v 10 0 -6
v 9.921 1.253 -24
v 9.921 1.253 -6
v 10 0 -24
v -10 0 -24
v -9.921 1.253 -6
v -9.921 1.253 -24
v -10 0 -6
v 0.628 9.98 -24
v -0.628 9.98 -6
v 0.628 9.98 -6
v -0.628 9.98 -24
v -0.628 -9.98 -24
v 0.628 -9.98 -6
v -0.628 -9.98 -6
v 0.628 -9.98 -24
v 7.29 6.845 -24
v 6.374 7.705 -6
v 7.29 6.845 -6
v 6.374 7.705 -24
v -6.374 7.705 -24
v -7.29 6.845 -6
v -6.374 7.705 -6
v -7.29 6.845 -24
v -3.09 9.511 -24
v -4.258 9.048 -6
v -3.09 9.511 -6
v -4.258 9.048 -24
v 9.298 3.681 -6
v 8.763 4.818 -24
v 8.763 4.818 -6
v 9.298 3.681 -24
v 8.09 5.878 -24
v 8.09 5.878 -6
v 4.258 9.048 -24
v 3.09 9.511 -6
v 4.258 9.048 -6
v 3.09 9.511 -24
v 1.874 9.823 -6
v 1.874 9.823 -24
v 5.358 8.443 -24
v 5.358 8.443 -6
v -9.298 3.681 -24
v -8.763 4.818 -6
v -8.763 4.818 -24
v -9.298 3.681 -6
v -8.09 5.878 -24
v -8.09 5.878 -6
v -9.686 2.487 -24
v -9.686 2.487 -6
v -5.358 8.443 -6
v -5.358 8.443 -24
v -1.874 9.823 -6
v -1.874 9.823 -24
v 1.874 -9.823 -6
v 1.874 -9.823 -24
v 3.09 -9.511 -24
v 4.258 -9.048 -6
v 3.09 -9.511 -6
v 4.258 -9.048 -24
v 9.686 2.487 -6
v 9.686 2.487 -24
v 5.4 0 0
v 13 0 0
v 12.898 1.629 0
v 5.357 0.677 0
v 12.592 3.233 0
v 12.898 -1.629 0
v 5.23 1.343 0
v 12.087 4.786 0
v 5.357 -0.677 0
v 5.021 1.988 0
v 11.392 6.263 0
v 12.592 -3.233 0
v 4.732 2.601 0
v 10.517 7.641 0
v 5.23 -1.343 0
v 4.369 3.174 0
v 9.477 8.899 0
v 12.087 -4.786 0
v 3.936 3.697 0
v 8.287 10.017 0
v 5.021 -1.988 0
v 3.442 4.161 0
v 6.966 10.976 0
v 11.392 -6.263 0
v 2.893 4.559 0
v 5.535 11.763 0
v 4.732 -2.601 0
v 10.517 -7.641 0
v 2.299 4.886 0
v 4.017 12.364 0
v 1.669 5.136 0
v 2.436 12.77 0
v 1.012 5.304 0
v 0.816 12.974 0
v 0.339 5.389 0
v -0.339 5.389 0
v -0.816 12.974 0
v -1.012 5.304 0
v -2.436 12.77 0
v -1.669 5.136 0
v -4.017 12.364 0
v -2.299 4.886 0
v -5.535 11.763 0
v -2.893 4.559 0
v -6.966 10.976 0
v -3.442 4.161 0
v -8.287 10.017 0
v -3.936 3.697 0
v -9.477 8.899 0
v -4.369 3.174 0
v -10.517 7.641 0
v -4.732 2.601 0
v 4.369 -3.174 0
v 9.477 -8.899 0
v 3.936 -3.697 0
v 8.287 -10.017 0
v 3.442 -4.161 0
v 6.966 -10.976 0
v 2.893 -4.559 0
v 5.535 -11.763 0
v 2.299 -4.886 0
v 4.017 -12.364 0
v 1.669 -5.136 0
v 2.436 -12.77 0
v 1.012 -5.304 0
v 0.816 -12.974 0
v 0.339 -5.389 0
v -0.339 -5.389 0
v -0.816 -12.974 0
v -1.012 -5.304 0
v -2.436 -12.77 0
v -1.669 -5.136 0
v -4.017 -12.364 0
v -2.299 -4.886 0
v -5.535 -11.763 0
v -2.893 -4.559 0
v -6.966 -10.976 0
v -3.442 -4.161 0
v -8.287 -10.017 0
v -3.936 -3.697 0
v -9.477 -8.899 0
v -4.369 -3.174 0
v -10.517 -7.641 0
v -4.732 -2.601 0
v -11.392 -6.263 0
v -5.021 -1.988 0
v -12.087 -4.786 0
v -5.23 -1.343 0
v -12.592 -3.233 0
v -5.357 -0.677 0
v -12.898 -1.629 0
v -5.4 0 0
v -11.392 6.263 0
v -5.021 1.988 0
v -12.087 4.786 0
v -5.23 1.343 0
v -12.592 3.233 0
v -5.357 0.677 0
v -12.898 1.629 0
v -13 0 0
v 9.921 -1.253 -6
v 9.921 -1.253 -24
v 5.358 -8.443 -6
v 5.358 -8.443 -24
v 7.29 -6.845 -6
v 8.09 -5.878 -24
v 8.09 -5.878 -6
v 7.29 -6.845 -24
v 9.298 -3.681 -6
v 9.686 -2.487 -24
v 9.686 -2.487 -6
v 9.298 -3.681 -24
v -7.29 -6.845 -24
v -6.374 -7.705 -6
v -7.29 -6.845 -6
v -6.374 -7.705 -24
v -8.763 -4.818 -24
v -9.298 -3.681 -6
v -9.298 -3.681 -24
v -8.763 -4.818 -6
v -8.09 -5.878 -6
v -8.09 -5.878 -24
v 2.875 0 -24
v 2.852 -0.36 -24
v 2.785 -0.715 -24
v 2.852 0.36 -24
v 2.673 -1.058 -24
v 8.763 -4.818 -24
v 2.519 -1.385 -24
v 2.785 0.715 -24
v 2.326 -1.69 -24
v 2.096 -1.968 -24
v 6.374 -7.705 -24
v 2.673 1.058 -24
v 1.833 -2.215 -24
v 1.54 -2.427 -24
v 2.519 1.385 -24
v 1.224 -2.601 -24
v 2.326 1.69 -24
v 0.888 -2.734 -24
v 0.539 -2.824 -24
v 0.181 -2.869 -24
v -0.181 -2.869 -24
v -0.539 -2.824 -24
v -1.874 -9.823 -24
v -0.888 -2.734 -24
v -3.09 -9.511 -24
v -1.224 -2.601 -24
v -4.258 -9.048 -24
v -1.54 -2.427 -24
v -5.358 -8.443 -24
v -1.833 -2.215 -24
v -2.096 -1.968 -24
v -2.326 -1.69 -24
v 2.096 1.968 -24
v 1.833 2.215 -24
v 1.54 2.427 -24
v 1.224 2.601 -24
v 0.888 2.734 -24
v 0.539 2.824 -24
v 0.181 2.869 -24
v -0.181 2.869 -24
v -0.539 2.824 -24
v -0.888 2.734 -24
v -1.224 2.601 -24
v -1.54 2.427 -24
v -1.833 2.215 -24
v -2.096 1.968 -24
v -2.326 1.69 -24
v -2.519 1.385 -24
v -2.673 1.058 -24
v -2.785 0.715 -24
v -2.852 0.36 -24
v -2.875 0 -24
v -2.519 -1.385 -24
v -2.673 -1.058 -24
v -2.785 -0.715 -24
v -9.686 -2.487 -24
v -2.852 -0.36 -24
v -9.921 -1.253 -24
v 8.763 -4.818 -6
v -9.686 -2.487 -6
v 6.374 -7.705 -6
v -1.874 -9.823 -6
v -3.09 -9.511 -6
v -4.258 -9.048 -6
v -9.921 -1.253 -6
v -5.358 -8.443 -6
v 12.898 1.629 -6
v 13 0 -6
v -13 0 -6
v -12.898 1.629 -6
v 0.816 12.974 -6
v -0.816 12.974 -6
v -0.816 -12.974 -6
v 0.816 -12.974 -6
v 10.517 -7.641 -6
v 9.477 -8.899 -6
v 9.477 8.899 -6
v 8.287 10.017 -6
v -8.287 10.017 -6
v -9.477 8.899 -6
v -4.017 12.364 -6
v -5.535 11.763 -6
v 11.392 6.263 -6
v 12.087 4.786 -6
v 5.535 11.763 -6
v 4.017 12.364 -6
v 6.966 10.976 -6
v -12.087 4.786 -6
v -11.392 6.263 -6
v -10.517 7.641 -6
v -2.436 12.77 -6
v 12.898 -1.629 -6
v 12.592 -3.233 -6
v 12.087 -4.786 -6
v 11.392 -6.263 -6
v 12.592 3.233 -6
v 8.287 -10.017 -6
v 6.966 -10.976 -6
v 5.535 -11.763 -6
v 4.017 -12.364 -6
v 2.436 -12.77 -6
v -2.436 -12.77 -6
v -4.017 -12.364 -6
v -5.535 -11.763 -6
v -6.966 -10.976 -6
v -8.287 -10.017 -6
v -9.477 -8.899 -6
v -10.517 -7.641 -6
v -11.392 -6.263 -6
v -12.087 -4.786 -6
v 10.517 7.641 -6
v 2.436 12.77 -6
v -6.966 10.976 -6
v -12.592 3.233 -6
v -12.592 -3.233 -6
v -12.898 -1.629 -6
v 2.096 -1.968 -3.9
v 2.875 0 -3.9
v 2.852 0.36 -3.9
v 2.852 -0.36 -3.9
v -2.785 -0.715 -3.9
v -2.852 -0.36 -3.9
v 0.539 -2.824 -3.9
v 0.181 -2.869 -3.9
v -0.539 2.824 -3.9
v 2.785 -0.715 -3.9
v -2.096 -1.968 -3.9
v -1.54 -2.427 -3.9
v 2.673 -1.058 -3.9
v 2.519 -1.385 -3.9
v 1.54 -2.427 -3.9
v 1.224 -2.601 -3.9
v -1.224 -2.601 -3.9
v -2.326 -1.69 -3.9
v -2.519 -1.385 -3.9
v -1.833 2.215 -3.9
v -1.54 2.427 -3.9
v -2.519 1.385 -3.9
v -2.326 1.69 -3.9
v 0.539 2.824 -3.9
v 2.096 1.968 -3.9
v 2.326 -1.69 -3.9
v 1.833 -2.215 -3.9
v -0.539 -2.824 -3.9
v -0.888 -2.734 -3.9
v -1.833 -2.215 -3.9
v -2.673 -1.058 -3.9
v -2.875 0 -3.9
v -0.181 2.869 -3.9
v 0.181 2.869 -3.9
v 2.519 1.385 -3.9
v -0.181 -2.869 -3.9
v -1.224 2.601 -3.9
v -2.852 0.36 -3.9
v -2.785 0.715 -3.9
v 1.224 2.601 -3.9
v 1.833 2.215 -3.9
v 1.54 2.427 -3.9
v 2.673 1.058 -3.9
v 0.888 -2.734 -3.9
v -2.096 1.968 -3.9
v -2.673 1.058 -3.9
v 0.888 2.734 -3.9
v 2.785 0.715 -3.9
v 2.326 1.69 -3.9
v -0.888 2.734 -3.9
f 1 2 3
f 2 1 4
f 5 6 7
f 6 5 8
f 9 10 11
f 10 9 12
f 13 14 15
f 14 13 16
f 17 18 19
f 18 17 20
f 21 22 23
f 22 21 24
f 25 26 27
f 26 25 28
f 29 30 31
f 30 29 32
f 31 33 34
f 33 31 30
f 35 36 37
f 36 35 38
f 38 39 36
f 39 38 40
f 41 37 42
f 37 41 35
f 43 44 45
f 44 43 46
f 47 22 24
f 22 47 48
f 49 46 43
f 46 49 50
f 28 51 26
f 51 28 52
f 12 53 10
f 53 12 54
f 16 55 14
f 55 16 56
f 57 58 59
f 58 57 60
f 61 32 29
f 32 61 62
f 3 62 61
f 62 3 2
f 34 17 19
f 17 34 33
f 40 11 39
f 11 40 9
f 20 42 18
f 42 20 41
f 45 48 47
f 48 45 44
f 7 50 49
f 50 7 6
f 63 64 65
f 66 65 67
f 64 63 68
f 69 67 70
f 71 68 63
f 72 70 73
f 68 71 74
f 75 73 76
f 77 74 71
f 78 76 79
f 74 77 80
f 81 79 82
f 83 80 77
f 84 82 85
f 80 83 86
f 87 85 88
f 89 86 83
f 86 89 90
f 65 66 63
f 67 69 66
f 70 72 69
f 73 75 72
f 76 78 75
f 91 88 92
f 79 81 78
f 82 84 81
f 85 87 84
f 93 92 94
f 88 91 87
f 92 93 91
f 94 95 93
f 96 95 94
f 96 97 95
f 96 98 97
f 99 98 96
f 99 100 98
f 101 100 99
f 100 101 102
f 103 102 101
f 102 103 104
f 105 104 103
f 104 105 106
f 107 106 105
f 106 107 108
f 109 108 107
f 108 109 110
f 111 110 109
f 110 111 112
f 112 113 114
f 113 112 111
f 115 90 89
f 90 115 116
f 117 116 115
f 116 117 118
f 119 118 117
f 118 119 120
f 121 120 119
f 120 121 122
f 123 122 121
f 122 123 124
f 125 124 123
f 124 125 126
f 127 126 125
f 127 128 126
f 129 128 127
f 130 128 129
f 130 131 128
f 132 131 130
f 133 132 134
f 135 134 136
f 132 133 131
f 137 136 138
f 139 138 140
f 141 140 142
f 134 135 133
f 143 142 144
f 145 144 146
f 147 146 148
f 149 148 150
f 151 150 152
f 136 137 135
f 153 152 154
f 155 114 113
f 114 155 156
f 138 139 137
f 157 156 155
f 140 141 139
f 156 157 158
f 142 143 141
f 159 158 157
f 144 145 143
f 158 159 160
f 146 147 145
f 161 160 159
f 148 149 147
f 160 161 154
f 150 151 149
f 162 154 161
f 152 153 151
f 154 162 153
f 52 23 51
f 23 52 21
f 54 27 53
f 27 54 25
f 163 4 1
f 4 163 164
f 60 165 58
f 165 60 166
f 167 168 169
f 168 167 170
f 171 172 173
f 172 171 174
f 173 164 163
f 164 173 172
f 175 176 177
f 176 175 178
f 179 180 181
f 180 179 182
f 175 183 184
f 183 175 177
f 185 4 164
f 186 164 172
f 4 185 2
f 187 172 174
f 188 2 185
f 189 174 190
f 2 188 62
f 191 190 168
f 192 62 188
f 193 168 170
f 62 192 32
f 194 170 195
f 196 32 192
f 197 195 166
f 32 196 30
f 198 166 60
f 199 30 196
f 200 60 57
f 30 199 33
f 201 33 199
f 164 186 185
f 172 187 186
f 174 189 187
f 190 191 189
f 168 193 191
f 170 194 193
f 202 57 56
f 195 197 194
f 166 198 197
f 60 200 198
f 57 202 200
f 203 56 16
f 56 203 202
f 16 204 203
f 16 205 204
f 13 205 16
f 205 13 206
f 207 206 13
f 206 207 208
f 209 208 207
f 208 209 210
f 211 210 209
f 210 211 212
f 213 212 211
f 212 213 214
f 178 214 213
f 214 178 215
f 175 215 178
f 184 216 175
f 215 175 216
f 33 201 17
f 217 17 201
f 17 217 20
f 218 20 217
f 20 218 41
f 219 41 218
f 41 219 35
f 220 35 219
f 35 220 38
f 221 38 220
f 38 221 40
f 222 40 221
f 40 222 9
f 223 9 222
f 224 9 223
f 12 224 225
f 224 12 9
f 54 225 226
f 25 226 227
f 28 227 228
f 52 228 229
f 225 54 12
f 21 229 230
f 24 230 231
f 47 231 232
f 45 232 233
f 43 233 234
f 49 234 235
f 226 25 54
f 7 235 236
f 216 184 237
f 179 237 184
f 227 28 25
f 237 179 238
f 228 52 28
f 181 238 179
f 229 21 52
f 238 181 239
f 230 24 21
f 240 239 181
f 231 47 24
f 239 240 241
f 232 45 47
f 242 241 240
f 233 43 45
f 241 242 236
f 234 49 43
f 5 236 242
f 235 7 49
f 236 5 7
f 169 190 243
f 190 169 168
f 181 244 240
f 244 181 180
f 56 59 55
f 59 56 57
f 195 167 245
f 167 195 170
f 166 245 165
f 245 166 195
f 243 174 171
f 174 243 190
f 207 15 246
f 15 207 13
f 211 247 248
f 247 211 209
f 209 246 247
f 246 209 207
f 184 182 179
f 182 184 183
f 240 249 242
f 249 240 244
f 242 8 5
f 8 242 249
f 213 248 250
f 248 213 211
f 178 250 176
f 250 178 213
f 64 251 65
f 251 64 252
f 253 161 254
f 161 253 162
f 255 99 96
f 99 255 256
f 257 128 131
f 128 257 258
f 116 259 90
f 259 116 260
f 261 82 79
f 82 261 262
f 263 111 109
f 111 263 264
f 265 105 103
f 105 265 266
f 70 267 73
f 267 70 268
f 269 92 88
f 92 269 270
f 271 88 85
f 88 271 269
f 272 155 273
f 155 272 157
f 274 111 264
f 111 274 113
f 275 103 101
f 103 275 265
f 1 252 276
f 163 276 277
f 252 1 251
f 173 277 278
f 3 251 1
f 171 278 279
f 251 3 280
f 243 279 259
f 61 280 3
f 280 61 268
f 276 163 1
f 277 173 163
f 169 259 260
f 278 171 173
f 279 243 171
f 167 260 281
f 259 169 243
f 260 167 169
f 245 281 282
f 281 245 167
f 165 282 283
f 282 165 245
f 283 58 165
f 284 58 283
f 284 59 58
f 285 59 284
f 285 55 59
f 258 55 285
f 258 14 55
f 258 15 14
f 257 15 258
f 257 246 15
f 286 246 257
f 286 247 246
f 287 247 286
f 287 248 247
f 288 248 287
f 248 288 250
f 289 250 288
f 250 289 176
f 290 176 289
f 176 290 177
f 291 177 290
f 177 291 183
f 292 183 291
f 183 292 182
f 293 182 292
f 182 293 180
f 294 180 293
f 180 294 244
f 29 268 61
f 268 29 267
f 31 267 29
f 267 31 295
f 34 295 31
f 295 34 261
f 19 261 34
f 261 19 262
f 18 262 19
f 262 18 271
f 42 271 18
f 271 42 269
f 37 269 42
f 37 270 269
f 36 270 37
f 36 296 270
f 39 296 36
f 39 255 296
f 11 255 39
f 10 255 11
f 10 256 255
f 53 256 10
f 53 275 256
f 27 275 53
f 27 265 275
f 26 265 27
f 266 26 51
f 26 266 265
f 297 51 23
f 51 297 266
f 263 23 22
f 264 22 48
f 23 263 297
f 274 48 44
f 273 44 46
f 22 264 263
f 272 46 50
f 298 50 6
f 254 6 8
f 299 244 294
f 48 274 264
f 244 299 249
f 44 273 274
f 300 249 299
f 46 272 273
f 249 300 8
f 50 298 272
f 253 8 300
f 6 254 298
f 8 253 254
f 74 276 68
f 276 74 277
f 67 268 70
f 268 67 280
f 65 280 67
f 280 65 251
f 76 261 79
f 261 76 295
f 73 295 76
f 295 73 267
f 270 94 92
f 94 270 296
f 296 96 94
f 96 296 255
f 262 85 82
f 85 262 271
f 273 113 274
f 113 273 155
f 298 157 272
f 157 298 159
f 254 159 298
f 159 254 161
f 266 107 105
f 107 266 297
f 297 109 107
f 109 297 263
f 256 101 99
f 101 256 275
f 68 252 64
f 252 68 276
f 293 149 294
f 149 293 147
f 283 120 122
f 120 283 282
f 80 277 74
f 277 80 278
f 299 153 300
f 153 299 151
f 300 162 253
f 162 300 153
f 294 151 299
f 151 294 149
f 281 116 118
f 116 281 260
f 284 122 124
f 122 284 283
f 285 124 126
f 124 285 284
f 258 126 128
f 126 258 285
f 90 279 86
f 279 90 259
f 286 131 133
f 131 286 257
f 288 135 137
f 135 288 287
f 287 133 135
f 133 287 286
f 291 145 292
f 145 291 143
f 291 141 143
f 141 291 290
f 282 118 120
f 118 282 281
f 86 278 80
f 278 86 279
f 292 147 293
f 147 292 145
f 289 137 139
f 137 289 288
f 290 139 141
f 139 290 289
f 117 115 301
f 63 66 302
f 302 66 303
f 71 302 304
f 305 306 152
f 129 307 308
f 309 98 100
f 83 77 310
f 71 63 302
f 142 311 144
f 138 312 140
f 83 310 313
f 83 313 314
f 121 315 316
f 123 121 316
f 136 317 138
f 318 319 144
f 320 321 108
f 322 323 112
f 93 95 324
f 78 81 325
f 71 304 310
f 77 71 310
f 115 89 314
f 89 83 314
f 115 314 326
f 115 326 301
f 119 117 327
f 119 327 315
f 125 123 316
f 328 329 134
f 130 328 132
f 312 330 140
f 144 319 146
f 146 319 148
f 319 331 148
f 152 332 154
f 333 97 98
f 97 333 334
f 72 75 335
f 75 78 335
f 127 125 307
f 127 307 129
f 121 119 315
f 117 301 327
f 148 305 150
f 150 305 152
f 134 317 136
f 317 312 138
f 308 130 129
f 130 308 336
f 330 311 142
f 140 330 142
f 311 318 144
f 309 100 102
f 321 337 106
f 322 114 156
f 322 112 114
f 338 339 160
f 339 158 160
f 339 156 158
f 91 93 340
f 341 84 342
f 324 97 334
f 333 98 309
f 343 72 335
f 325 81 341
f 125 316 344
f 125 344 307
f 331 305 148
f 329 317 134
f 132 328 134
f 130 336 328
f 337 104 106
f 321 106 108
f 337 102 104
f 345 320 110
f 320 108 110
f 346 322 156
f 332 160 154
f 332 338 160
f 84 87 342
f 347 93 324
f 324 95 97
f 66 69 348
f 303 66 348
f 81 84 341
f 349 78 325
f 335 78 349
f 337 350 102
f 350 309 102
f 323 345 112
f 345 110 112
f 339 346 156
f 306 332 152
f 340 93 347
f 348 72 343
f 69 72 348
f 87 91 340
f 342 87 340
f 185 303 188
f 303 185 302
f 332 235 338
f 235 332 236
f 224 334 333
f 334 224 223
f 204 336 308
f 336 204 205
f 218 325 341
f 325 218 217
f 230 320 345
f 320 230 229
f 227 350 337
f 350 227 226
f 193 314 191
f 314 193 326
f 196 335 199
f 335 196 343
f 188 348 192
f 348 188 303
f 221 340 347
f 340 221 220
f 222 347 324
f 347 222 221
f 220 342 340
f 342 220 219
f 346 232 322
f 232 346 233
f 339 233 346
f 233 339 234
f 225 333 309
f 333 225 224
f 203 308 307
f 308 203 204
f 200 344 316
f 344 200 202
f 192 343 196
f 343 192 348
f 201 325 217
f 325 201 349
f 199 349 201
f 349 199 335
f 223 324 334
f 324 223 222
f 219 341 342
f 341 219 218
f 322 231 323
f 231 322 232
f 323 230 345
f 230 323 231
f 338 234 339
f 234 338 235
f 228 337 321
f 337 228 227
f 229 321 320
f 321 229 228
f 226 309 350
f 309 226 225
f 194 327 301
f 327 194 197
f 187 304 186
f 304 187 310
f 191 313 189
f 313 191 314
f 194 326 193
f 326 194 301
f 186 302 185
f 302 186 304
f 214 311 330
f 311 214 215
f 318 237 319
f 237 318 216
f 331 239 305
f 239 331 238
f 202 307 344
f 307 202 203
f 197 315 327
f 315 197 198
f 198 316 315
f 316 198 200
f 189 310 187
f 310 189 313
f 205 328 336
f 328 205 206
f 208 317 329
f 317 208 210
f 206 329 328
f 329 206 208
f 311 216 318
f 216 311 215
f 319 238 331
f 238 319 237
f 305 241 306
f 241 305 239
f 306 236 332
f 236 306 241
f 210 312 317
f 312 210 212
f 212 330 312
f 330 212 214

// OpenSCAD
$fn = 50;


difference() {
	union() {
		translate(v = [0, 0, -24.0000000000]) {
			cylinder(h = 24, r = 10.0000000000);
		}
		translate(v = [0, 0, -6.0000000000]) {
			cylinder(h = 6, r = 13.0000000000);
		}
	}
	union() {
		translate(v = [0, 0, 0]) {
			rotate(a = [0, 0, 0]) {
				difference() {
					union() {
						#translate(v = [0, 0, -24.0000000000]) {
							cylinder(h = 24, r = 2.6000000000);
						}
						#translate(v = [0, 0, -3.9000000000]) {
							cylinder(h = 3.9000000000, r1 = 2.8750000000, r2 = 5.4000000000);
						}
						#translate(v = [0, 0, -24.0000000000]) {
							cylinder(h = 24, r = 2.8750000000);
						}
						#translate(v = [0, 0, -24.0000000000]) {
							cylinder(h = 24, r = 2.6000000000);
						}
					}
					union();
				}
			}
		}
	}
}
